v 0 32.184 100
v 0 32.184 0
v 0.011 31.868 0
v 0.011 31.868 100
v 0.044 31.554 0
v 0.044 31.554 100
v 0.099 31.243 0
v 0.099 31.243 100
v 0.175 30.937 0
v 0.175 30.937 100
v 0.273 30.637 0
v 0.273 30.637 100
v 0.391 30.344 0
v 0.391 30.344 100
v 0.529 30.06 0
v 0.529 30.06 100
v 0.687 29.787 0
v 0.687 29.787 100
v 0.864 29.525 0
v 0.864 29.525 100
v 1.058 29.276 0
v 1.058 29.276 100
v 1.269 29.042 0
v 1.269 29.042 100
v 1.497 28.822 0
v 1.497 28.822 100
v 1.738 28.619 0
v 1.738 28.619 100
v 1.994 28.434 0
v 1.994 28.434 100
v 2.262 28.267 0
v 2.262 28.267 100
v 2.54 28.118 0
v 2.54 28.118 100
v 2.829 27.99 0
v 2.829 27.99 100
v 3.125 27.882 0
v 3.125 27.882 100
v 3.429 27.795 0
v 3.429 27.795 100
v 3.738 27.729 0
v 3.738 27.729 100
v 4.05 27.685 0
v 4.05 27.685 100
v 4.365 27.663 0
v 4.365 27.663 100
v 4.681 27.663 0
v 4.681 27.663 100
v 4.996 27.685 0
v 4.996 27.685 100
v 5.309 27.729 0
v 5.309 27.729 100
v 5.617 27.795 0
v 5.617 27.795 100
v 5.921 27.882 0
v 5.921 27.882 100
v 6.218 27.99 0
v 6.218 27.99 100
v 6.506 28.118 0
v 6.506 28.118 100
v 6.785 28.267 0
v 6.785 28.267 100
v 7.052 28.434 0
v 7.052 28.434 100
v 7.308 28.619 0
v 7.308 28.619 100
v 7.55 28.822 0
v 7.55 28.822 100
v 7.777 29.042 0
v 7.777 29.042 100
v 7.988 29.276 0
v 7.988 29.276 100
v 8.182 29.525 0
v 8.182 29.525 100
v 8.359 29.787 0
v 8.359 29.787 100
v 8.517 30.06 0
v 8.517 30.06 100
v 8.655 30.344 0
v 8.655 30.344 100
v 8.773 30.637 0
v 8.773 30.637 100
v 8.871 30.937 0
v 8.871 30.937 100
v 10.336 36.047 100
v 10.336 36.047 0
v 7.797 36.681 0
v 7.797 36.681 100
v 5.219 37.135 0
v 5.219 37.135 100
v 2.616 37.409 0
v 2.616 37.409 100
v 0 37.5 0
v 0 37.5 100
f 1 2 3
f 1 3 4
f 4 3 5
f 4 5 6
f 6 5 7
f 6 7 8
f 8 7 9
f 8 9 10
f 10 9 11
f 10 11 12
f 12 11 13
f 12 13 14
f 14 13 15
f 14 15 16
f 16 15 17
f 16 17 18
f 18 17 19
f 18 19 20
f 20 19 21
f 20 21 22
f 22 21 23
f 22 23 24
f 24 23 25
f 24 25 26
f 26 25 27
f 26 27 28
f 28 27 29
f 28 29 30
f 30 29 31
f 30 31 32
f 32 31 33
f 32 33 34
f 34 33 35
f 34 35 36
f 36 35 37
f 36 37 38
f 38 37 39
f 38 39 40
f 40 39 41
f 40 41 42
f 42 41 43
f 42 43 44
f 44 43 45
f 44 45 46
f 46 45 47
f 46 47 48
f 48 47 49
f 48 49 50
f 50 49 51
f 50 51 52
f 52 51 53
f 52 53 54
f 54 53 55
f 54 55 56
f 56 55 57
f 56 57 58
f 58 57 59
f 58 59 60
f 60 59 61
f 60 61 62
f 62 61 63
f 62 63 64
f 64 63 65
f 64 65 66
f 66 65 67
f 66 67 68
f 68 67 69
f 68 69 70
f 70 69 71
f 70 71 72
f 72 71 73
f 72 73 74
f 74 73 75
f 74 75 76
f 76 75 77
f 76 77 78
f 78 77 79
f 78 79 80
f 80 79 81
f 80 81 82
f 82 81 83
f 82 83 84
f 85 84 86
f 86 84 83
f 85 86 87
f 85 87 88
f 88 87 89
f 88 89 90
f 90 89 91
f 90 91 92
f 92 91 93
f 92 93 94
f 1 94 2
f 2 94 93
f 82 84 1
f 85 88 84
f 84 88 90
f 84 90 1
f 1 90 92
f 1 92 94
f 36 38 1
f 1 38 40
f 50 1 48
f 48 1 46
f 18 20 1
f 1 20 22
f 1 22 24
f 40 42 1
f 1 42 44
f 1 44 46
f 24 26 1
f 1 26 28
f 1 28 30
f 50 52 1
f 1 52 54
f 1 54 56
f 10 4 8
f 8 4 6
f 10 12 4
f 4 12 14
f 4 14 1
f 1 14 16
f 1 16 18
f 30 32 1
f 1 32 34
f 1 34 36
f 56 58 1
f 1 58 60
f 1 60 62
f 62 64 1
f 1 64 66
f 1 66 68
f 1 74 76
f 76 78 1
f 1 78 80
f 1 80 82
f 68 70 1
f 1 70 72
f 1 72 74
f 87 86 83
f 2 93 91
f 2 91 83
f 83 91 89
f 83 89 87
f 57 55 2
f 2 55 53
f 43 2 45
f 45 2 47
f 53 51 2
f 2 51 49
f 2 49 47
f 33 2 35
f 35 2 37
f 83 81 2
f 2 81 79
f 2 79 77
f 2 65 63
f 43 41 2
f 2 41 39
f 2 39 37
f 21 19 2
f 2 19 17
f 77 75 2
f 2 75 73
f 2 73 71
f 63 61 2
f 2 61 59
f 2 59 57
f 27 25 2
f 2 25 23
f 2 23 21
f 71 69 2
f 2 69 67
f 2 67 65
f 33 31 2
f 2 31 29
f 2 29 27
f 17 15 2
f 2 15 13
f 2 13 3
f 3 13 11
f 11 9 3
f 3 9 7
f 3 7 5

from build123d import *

# Parameters (mm, degrees)
BOSS_EXTRUDE1_DEPTH = 100


with BuildPart() as part:
    # Sketch1 → Boss-Extrude1 (new body)
    with BuildSketch(Plane.XY):
        with BuildLine():
            ThreePointArc((5.152623222, 36.662819266), (1.555688273, 35.597358594), (0, 32.183712234))
            ThreePointArc((0, 32.183712234), (1.109479422, 29.216274726), (3.89362834, 27.704605202))
            Line((3.89362834, 27.704605202), (5.152623222, 36.662819266))
        make_face()
        with BuildLine():
            ThreePointArc((3.89362834, 27.704605202), (6.986596787, 28.390299861), (8.871033436, 30.936970137))
            ThreePointArc((8.871033436, 30.936970137), (9.002232837, 31.554214965), (9.046251562, 32.183712234))
            ThreePointArc((9.046251562, 32.183712234), (7.936772141, 35.151149742), (5.152623222, 36.662819266))
            Line((5.152623222, 36.662819266), (3.89362834, 27.704605202))
        make_face()
        with BuildLine():
            ThreePointArc((9.046251562, 32.183712234), (9.002232837, 31.554214965), (8.871033436, 30.936970137))
            Line((8.871033436, 30.936970137), (10.336400843, 36.047313598))
            ThreePointArc((10.336400843, 36.047313598), (7.796688406, 36.680535028), (5.218991286, 37.135052578))
            Line((5.218991286, 37.135052578), (5.152623222, 36.662819266))
            ThreePointArc((5.152623222, 36.662819266), (7.936772141, 35.151149742), (9.046251562, 32.183712234))
        make_face()
        with BuildLine():
            Line((0, 37.5), (0, 32.183712234))
            ThreePointArc((0, 32.183712234), (1.555688273, 35.597358594), (5.152623222, 36.662819266))
            Line((5.152623222, 36.662819266), (5.218991286, 37.135052578))
            ThreePointArc((5.218991286, 37.135052578), (2.615867765, 37.408651885), (0, 37.5))
        make_face()
    extrude(amount=BOSS_EXTRUDE1_DEPTH)


solid = part.part
